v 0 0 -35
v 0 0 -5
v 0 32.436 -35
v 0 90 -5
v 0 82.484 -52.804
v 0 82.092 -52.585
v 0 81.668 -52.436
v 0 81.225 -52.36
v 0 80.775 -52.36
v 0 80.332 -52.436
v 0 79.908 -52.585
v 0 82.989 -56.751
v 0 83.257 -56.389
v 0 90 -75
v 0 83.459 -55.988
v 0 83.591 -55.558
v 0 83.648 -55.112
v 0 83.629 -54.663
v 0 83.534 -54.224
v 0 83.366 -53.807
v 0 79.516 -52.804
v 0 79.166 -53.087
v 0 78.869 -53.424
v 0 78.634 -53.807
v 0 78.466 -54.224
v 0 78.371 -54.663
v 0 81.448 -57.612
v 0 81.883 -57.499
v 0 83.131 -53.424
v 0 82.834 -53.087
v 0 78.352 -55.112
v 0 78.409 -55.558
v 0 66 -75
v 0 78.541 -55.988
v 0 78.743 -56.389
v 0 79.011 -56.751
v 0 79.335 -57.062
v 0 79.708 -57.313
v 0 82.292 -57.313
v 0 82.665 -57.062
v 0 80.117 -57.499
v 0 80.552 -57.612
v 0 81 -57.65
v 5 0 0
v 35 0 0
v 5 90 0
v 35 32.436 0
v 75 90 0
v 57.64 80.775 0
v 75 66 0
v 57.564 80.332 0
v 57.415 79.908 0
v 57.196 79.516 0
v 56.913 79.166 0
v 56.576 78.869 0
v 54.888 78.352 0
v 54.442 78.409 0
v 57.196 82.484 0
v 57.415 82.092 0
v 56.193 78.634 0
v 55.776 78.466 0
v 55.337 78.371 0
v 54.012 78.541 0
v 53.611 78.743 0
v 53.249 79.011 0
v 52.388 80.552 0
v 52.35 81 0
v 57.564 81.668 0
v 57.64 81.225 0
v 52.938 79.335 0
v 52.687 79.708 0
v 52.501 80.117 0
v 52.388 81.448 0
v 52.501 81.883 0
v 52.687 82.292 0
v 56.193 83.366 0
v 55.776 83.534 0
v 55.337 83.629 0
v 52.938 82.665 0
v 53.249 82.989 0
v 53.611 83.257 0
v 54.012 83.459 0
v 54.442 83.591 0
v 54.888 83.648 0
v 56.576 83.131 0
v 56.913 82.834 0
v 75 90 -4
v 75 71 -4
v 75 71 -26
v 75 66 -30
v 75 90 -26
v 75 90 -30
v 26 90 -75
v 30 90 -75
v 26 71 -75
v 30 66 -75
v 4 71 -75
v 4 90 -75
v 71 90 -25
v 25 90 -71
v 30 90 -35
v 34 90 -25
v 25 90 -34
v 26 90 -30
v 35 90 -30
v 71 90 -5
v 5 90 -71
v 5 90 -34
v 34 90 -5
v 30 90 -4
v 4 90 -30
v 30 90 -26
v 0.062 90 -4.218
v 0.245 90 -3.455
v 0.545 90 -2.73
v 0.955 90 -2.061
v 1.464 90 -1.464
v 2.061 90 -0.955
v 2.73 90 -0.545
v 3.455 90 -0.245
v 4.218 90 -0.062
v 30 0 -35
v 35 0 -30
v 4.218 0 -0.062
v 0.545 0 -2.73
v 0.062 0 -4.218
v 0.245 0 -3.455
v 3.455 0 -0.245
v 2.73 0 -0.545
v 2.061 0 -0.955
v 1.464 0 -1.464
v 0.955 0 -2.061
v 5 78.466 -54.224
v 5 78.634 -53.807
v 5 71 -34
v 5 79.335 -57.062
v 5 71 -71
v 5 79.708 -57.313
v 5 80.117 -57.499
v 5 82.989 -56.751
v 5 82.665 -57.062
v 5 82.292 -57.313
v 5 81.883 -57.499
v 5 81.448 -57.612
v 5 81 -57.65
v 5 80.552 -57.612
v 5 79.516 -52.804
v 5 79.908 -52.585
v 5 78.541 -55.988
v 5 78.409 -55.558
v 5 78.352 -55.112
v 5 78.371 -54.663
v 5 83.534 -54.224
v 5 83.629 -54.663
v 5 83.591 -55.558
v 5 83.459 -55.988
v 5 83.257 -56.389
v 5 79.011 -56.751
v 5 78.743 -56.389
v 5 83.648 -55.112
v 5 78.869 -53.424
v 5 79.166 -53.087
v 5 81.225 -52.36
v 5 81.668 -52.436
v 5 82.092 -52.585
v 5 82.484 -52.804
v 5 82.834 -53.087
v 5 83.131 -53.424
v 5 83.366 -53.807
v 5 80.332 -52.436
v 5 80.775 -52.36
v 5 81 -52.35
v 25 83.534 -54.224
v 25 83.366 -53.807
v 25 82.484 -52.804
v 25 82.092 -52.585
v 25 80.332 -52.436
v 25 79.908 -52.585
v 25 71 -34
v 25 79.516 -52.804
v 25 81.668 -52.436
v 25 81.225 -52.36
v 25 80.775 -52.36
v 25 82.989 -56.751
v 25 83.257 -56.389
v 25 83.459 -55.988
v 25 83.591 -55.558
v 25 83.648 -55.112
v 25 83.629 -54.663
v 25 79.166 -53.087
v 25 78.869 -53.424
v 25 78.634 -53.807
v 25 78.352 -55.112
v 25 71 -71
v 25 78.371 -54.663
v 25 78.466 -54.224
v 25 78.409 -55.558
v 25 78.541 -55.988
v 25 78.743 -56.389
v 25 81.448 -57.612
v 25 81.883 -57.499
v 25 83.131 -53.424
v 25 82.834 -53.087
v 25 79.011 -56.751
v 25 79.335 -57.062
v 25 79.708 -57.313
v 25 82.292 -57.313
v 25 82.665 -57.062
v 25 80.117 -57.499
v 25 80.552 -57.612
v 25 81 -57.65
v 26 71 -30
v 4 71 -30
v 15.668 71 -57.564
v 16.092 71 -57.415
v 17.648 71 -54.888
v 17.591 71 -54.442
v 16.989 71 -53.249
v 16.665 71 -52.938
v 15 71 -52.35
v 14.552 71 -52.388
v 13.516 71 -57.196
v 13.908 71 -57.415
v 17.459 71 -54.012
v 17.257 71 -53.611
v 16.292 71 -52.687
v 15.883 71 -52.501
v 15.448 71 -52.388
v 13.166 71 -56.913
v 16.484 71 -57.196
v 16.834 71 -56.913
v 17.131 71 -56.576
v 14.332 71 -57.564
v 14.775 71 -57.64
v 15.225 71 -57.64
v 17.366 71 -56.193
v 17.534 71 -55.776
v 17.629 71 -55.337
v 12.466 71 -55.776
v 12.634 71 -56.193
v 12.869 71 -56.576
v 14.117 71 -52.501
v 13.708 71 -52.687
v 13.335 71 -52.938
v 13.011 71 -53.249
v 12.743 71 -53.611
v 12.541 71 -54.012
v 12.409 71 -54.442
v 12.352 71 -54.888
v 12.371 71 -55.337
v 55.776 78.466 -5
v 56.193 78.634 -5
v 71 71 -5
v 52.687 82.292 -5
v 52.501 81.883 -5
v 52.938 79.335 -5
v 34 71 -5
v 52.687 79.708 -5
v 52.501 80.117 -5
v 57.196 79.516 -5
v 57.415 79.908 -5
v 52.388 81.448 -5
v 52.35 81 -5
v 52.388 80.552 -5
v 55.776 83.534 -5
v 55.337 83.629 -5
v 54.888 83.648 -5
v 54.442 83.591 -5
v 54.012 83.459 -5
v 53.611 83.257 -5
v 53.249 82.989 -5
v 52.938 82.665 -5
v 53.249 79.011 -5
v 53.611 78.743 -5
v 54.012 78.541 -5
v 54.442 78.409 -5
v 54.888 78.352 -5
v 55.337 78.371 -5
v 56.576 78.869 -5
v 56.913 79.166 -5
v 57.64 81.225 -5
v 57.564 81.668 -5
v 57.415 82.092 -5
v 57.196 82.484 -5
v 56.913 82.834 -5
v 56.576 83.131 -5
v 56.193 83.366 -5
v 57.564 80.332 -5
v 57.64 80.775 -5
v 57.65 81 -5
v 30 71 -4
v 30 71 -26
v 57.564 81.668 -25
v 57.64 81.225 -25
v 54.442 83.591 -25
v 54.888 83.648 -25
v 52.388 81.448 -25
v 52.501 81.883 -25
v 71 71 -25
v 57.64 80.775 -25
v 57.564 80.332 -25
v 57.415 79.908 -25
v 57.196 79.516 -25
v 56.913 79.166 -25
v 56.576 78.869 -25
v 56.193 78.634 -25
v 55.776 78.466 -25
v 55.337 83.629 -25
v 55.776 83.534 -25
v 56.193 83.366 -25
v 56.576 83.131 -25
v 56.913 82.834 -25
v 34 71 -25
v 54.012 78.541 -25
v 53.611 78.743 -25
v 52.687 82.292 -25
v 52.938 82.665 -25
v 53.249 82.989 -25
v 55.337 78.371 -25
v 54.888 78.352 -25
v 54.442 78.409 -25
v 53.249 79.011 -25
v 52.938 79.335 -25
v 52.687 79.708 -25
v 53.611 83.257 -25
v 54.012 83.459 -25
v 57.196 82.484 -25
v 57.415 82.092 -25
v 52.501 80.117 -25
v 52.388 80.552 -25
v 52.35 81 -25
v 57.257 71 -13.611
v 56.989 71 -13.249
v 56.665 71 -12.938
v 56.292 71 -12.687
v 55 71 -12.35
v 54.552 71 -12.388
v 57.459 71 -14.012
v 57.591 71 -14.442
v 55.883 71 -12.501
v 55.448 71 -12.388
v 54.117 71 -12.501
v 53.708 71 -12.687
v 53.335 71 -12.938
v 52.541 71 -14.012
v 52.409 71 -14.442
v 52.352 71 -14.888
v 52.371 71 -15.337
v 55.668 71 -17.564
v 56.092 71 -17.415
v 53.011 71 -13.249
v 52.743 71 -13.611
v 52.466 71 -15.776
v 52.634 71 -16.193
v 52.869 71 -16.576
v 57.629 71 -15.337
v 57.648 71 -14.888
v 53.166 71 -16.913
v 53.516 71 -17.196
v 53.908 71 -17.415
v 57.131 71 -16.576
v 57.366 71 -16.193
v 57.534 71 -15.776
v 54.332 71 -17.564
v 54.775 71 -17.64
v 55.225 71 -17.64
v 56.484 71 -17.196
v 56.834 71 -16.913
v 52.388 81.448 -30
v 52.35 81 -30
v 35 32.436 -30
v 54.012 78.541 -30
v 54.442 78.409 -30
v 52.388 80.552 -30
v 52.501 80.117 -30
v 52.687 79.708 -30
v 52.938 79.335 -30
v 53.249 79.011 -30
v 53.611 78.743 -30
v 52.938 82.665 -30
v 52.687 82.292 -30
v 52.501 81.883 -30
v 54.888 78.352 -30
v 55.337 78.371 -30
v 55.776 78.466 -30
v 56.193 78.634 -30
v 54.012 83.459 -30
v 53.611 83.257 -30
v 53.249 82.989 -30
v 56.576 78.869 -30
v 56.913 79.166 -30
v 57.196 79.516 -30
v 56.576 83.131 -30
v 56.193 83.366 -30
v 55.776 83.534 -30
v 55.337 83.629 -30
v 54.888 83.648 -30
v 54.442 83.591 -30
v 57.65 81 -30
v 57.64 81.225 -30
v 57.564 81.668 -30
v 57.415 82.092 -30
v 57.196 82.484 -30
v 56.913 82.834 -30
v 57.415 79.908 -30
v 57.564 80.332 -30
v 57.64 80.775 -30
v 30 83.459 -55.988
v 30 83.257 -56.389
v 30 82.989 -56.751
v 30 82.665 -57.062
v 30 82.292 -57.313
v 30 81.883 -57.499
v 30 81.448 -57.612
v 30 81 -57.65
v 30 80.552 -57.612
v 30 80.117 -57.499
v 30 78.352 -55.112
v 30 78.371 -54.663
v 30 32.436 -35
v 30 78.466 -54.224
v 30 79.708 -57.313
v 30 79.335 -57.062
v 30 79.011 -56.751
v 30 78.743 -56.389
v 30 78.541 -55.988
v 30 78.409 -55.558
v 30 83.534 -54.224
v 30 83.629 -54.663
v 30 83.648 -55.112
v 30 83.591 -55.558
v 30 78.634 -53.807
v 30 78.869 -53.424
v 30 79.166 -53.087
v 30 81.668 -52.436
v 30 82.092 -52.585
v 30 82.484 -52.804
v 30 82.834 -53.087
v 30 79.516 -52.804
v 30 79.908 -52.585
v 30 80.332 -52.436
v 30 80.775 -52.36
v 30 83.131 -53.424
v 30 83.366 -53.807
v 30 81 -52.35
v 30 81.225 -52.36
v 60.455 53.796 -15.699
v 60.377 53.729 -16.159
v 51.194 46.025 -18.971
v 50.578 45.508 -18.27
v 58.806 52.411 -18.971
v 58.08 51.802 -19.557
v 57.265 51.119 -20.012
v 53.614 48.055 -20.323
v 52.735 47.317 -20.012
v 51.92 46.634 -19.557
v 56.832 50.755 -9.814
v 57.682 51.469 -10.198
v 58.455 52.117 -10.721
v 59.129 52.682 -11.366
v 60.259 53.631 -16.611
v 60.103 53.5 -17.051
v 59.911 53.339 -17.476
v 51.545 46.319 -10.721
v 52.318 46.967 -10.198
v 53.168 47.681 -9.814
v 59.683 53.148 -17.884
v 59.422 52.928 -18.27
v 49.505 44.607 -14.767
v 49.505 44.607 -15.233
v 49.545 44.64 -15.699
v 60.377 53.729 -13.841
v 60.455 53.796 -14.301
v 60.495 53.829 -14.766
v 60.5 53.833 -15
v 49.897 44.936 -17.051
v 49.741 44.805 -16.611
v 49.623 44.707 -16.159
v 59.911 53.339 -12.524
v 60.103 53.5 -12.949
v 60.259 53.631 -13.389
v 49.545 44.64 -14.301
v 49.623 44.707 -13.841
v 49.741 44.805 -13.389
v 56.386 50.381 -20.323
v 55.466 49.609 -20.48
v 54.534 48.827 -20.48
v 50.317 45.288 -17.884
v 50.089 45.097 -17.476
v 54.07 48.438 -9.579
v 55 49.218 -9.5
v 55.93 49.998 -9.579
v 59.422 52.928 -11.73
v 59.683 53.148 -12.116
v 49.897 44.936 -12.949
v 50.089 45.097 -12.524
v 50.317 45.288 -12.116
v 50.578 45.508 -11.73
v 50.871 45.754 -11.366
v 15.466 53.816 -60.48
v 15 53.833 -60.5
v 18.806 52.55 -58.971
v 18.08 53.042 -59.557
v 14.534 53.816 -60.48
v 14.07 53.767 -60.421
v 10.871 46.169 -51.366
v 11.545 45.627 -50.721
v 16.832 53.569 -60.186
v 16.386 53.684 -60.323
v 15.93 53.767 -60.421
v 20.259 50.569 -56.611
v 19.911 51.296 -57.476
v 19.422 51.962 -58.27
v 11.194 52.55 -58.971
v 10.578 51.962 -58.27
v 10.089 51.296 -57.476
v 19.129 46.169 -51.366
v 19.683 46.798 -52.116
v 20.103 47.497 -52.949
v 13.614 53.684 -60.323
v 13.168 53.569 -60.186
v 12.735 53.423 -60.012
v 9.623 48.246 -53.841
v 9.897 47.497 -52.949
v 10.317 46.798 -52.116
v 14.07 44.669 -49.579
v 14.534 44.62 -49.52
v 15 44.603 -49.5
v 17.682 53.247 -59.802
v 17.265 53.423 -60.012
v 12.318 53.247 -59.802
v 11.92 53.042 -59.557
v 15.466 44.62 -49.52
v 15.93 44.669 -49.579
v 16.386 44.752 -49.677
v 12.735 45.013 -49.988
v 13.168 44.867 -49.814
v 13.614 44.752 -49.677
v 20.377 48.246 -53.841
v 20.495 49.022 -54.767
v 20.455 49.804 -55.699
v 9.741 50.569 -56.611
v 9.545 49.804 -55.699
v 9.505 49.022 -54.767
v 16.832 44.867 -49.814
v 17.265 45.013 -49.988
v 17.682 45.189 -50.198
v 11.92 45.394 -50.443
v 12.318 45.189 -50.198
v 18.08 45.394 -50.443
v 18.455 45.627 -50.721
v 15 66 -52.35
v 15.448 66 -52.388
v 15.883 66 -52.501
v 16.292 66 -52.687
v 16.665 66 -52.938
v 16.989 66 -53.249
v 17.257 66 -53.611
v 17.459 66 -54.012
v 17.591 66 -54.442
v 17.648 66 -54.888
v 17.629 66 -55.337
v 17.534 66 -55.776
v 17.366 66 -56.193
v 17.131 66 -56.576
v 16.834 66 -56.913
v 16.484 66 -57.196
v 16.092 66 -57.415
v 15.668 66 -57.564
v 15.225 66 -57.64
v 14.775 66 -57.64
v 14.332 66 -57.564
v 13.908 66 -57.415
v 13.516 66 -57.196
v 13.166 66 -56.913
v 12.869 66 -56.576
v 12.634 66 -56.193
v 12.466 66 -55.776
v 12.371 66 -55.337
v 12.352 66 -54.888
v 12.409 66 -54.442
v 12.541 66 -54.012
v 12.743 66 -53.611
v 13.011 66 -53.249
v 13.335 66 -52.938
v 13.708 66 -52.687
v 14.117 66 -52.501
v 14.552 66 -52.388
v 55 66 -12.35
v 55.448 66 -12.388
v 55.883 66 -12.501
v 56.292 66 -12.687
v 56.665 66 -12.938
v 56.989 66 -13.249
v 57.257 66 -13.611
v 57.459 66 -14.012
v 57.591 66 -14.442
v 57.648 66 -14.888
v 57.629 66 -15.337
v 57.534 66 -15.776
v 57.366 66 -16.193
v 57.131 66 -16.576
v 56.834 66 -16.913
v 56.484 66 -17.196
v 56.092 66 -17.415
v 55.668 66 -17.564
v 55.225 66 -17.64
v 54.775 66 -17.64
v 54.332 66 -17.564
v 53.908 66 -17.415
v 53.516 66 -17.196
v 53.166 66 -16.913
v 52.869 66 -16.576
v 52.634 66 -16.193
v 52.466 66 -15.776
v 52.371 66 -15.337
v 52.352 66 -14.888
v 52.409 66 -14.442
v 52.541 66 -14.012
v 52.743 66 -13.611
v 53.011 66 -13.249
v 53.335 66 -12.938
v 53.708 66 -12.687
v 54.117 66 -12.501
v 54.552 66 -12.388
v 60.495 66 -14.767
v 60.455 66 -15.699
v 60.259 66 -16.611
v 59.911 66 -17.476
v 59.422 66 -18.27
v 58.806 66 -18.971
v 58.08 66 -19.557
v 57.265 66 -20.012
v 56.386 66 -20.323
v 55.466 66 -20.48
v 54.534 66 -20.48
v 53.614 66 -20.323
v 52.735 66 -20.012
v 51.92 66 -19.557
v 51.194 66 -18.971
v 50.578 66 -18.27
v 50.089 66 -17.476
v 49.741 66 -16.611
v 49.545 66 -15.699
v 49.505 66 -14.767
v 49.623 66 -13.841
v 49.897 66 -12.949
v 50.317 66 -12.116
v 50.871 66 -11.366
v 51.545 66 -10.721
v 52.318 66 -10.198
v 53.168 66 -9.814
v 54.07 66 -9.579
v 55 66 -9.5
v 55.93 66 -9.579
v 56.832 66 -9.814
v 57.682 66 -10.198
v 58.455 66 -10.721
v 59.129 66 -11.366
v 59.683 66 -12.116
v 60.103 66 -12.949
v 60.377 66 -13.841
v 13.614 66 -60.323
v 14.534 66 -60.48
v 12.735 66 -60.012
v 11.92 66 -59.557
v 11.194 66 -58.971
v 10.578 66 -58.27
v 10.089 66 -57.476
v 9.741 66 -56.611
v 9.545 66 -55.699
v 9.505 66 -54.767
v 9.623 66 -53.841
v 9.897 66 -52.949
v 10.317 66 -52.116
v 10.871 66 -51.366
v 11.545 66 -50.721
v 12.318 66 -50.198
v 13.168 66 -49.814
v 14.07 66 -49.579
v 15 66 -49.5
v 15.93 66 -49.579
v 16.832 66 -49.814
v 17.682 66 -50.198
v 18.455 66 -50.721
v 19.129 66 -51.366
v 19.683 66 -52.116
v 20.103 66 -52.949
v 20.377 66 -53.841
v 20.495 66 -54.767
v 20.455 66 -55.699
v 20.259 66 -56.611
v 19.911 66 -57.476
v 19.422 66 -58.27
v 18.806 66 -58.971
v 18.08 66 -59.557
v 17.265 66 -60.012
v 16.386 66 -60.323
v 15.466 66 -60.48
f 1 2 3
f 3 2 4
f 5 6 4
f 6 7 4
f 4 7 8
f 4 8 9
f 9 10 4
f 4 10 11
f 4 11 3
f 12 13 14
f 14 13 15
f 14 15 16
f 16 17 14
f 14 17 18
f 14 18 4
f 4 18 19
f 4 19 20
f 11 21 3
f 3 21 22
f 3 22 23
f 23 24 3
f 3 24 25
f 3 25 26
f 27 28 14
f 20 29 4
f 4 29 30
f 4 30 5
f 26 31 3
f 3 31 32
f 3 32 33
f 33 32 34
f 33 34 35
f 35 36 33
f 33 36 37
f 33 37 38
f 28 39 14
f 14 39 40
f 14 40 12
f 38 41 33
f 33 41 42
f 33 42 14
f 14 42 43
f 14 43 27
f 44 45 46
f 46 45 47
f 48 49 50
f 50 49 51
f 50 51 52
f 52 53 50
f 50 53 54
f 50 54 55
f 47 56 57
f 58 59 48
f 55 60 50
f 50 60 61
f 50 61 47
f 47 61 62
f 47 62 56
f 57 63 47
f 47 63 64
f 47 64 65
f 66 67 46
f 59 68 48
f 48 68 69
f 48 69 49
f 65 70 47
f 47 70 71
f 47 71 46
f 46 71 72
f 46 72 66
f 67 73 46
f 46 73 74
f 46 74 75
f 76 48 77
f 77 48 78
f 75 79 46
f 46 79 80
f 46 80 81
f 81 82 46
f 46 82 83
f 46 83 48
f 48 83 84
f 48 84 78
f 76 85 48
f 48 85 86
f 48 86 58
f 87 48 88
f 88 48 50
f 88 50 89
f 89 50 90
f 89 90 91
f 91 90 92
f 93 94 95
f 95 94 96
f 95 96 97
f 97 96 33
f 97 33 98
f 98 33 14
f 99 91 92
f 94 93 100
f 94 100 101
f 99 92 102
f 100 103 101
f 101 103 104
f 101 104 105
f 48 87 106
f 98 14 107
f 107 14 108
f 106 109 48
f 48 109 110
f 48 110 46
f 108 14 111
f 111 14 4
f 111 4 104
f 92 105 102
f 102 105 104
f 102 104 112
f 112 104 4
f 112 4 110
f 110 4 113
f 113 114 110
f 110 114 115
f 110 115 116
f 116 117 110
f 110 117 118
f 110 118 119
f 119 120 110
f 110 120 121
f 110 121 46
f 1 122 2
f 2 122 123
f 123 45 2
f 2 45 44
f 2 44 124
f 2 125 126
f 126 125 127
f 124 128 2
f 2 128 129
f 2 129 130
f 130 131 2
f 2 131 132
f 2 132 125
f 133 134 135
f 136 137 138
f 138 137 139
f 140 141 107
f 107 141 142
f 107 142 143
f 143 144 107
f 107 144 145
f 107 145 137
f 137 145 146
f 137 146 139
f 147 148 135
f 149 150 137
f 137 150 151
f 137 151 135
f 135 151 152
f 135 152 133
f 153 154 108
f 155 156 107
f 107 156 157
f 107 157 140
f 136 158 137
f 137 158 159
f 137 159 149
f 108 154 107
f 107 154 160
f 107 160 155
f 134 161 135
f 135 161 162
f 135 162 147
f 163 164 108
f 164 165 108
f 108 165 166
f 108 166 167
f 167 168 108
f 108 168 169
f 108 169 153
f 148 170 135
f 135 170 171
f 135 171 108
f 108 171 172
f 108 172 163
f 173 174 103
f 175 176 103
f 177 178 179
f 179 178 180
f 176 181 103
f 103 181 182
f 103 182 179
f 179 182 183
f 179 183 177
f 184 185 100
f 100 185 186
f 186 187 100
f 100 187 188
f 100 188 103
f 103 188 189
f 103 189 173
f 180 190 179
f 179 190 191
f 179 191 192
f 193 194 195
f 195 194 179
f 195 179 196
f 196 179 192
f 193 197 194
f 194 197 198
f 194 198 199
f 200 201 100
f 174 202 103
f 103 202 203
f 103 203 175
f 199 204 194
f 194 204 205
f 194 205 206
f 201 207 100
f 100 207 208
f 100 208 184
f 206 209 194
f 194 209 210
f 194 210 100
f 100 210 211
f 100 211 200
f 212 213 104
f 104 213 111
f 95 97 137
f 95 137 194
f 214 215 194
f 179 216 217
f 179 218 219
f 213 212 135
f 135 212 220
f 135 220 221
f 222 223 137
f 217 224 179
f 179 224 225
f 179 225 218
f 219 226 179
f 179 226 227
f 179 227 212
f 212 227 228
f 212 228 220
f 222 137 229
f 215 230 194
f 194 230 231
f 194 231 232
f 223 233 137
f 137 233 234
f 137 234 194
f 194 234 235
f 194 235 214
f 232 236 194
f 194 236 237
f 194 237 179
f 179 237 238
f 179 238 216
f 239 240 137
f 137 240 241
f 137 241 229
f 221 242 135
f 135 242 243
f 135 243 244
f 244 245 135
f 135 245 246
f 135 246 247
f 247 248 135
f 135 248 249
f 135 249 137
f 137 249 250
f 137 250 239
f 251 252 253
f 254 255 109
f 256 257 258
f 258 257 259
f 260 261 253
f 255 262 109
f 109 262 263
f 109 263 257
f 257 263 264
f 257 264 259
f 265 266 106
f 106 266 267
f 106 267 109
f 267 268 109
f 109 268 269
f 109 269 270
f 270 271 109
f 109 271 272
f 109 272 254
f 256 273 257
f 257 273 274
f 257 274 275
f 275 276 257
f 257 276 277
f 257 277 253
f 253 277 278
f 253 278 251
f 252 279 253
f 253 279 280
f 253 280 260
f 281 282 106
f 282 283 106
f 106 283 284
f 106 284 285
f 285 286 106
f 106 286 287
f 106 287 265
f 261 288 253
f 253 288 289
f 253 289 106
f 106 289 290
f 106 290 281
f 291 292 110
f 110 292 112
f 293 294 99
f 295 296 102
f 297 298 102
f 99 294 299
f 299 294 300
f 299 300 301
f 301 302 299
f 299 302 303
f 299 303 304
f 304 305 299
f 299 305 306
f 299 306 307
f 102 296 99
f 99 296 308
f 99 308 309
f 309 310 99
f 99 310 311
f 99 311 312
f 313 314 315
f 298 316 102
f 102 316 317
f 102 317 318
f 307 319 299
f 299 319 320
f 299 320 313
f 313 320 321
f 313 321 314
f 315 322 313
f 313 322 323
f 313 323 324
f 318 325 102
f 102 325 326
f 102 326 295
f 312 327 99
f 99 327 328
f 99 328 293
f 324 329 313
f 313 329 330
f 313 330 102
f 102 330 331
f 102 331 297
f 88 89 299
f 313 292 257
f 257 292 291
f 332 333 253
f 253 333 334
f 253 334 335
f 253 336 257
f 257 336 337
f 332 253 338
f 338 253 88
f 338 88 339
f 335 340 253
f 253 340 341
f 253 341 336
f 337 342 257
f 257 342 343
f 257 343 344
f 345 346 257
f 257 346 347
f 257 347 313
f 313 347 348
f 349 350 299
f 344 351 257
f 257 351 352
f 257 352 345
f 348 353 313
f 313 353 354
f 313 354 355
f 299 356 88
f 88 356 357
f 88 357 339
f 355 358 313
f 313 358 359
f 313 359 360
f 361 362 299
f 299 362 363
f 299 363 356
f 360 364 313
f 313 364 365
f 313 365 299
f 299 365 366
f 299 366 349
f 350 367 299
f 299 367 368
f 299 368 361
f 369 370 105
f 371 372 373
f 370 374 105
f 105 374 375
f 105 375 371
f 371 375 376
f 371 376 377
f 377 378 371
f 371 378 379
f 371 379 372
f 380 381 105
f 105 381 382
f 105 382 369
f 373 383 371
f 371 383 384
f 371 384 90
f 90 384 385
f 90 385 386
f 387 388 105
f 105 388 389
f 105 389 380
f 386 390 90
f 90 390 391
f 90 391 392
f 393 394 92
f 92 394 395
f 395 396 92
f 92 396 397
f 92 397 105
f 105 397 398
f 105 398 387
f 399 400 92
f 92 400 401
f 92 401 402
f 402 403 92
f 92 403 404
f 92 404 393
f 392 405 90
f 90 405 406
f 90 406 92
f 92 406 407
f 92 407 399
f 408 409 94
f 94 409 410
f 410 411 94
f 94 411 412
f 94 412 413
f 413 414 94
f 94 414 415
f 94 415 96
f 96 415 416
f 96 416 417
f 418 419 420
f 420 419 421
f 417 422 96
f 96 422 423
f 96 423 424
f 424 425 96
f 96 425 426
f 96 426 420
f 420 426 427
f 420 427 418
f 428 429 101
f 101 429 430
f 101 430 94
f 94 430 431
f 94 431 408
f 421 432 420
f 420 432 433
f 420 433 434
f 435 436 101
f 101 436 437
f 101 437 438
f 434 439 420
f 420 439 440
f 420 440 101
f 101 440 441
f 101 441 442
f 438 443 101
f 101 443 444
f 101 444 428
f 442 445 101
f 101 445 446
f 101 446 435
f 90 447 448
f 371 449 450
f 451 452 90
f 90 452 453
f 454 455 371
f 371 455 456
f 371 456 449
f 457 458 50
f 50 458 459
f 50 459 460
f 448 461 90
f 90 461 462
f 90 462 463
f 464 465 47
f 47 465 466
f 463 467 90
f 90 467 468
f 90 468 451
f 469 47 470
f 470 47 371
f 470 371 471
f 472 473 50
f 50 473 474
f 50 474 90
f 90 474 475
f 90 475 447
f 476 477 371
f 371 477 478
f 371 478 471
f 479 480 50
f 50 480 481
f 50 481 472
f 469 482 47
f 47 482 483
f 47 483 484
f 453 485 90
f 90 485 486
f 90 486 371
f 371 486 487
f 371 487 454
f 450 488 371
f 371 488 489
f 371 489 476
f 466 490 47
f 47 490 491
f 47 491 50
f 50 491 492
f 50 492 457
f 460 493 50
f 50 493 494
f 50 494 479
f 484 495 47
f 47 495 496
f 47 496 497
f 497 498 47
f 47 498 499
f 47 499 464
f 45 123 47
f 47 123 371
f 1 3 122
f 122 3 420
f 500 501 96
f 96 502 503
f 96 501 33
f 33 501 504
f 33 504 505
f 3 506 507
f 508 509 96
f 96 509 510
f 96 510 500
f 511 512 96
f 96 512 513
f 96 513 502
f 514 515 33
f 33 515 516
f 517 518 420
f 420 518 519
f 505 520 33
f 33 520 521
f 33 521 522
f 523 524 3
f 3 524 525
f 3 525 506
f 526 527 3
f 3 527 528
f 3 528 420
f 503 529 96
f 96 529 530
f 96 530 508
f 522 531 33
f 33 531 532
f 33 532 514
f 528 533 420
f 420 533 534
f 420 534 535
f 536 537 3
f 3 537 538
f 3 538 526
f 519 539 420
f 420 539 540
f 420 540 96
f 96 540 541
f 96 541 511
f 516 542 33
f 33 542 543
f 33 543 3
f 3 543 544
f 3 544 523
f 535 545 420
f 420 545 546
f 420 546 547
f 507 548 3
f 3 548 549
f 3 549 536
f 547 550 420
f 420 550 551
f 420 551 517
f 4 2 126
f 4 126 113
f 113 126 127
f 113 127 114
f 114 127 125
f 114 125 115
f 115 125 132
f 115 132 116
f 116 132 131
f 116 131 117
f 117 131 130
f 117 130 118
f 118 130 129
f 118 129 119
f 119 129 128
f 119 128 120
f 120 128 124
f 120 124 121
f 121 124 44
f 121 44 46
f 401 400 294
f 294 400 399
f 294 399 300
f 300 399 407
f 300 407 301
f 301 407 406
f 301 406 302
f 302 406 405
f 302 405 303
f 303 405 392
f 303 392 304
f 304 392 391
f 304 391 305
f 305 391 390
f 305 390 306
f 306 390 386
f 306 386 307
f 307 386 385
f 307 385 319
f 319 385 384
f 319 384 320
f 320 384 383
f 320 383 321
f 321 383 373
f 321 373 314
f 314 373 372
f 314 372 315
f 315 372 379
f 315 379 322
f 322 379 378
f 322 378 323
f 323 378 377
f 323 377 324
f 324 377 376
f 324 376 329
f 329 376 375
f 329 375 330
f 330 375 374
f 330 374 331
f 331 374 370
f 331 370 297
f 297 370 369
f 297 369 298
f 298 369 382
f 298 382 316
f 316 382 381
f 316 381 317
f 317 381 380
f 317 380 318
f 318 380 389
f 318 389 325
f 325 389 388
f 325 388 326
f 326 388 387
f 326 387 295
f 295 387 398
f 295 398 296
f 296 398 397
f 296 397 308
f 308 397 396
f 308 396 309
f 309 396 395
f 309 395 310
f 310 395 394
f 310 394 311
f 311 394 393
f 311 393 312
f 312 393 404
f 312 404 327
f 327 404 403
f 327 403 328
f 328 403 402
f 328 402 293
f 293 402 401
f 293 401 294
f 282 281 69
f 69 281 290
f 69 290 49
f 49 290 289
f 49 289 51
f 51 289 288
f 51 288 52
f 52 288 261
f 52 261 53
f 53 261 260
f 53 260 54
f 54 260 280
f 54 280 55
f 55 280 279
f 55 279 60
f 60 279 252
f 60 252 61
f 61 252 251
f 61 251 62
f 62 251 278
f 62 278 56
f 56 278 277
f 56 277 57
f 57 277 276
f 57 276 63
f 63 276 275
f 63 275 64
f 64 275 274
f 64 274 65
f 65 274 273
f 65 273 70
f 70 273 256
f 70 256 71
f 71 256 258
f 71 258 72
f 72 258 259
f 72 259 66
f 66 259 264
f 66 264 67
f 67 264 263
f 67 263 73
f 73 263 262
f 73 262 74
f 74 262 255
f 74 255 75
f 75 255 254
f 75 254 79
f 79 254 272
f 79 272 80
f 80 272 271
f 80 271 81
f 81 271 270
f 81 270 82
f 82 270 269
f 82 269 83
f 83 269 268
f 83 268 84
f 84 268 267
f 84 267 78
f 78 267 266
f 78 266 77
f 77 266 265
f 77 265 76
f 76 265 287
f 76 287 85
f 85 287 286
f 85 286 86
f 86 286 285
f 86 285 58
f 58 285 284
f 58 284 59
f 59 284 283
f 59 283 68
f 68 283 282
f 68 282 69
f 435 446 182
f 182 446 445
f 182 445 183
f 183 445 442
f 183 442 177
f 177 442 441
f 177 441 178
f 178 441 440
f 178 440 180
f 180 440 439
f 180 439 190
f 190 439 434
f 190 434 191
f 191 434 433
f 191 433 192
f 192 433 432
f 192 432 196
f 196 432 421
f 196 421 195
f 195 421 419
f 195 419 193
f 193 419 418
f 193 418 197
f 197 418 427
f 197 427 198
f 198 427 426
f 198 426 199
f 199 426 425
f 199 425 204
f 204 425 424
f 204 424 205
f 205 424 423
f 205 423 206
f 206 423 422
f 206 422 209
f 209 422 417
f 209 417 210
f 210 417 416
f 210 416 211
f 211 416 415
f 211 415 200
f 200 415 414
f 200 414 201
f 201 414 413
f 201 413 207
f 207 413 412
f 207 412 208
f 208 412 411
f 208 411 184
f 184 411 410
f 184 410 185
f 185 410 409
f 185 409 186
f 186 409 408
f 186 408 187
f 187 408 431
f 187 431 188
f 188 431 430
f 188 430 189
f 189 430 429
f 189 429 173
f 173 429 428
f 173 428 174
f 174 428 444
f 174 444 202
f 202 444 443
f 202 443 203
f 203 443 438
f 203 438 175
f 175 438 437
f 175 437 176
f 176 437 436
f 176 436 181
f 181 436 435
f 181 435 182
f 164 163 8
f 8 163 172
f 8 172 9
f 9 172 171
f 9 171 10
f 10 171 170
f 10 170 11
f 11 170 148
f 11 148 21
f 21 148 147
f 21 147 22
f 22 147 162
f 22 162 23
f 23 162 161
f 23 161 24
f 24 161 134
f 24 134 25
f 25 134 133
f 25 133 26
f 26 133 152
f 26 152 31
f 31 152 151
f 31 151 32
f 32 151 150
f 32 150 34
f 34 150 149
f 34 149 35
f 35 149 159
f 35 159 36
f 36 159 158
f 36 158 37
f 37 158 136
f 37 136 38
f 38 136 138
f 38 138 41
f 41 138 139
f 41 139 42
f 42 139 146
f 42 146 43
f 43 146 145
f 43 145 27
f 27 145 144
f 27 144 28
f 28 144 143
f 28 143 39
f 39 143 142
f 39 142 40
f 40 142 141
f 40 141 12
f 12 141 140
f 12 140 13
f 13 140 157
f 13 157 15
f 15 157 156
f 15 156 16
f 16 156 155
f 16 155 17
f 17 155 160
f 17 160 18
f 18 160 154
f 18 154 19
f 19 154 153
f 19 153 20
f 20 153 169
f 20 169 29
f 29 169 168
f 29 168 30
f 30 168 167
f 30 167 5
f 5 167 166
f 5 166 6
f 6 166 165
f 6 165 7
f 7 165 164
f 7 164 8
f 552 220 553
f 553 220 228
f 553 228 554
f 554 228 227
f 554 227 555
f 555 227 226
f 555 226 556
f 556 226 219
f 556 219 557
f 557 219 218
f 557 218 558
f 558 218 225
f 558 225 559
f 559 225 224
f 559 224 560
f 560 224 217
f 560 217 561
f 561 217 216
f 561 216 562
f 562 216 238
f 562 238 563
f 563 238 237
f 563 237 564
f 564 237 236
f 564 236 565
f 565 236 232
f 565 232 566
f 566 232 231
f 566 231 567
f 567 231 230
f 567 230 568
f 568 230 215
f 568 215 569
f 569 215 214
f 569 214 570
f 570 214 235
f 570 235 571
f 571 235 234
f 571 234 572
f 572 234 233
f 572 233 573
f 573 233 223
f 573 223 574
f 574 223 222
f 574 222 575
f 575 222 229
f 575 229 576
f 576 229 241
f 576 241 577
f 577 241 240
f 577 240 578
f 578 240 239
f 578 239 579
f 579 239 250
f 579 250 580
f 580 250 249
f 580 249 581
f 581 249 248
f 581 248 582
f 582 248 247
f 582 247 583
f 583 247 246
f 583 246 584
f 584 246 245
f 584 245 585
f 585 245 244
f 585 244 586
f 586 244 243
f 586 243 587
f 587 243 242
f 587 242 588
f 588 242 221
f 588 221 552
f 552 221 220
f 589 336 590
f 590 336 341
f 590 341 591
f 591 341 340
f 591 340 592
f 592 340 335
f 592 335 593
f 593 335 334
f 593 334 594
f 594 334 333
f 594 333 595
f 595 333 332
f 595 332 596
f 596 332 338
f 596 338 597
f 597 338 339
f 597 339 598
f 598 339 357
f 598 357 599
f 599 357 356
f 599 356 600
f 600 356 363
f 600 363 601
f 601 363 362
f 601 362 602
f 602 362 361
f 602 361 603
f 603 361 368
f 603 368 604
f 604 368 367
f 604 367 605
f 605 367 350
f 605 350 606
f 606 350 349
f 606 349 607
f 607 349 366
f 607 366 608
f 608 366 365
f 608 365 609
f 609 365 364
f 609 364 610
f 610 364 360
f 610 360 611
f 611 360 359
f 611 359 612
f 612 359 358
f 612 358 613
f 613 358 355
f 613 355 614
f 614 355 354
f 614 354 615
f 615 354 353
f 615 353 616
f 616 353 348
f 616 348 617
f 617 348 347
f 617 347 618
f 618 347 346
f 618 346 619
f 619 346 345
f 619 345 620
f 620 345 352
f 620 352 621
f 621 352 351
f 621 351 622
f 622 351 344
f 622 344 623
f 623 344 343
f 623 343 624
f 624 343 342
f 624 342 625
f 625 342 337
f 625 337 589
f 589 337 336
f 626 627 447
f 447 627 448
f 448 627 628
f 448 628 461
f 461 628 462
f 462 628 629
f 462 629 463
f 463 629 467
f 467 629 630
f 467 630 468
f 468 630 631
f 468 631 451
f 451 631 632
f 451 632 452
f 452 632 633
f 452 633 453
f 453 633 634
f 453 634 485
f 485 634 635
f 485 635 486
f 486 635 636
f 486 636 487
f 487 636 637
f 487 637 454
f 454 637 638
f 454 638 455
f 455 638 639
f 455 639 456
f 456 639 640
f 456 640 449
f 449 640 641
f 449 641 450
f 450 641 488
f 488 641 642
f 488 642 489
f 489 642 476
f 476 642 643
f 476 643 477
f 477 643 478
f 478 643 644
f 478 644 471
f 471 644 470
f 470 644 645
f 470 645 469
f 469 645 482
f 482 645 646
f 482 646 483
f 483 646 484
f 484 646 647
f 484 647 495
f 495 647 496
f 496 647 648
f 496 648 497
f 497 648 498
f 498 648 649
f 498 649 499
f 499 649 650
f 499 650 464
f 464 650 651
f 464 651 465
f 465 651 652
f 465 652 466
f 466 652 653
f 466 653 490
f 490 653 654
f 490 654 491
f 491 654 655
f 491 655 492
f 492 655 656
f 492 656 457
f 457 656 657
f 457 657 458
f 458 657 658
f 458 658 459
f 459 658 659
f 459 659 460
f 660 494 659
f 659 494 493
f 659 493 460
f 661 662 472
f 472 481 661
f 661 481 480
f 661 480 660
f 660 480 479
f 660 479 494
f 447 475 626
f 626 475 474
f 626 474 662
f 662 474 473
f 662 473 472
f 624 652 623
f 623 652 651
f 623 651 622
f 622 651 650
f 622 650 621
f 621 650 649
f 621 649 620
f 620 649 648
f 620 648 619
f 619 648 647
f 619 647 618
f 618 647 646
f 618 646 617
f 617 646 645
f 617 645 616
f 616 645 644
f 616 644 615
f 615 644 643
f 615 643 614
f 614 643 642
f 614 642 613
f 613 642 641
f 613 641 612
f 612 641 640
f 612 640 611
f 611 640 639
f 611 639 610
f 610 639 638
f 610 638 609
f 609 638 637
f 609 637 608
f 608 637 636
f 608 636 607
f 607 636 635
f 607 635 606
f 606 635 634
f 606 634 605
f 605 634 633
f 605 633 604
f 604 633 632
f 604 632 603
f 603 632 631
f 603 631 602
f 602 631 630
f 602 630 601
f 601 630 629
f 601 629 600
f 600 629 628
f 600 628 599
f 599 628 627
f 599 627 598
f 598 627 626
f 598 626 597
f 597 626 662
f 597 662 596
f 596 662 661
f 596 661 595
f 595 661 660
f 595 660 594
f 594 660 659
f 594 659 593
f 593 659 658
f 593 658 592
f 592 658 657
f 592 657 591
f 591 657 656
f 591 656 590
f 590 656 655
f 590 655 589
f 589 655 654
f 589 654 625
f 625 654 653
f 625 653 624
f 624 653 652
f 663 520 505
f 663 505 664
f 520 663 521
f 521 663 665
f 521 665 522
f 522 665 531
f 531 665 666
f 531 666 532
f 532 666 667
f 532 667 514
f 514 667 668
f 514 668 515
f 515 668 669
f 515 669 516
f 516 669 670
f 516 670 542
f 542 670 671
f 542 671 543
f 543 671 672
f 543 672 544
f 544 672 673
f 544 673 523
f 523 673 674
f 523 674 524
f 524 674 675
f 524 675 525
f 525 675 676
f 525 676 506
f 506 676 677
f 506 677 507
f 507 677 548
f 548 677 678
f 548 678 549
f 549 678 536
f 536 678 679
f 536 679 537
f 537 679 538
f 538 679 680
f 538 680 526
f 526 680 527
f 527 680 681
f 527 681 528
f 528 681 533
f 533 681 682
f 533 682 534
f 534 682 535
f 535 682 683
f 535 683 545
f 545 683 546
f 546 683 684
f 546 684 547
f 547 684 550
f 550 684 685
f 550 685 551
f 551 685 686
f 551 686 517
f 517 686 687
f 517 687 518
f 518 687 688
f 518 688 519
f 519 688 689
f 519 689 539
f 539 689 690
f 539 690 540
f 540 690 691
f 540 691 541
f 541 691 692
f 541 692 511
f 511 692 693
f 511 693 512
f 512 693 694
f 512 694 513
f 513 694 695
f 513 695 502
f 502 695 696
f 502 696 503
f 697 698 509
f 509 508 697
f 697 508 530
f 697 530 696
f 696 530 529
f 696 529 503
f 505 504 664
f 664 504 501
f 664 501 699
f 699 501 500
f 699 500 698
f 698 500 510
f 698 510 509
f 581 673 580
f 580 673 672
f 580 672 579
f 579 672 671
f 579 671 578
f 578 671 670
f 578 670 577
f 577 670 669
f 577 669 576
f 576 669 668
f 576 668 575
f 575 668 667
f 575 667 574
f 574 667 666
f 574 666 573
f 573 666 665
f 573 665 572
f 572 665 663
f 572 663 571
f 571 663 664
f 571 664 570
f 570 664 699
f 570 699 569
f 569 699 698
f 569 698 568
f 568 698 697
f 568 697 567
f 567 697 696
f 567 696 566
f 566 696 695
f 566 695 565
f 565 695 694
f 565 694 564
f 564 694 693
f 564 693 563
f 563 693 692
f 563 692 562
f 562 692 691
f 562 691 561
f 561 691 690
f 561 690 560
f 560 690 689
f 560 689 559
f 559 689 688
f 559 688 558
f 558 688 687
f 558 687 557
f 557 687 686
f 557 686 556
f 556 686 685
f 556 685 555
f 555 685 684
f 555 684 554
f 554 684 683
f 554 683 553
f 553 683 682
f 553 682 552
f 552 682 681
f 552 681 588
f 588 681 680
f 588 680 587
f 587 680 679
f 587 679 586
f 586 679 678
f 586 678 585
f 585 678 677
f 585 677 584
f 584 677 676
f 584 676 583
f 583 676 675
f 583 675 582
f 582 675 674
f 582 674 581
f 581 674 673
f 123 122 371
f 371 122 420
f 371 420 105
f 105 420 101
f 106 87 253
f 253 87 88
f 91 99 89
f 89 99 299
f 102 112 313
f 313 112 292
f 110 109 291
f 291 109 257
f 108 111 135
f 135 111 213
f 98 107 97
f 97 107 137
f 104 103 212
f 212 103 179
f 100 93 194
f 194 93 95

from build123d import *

# Parameters (mm, degrees)
SKETCH1_W                = 75
SKETCH1_H                = 75
BOSS_EXTRUDE1_DEPTH      = 90
SKETCH2_W                = 45
SKETCH2_H                = 20
SKETCH2_W_2              = 20
SKETCH2_H_2              = 45
CUT_EXTRUDE2_DEPTH       = 19
SKETCH3_W                = 45
SKETCH3_H                = 45
CUT_EXTRUDE3_DEPTH       = 140.104277432
CUT_EXTRUDE4_DEPTH       = 140.104277432
CUT_EXTRUDE5_DEPTH       = 126.49900398
FILLET1_R                = 5
CUT_EXTRUDE10_DEPTH      = 126.49900398
CUT_EXTRUDE10_DEPTH_BACK = 126.49900398
SKETCH7_R                = 2.65
CUT_EXTRUDE11_DEPTH      = 126.49900398
CUT_EXTRUDE11_DEPTH_BACK = 126.49900398
SKETCH8_R                = 2.65
SKETCH9_R                = 2.65
CUT_EXTRUDE12_DEPTH      = 128.636201761
SKETCH10_R               = 5.5
CUT_EXTRUDE13_DEPTH      = 125.923976882
CHAMFER3_SIZE            = 5
CUT_EXTRUDE14_DEPTH      = 19


with BuildPart() as part:
    # Sketch1 → Boss-Extrude1 (new body)
    with BuildSketch(Plane(origin=(0, 0, 0), x_dir=(1, 0, 0), z_dir=(0, 1, 0))):
        with Locations((37.5, 37.5)):
            Rectangle(SKETCH1_W, SKETCH1_H)
    extrude(amount=BOSS_EXTRUDE1_DEPTH)

    # Sketch2 → Cut-Extrude2 (cut)
    with BuildSketch(Plane(origin=(0, 90, 0), x_dir=(1, 0, 0), z_dir=(0, 1, 0))):
        with Locations((52.5, 15)):
            Rectangle(SKETCH2_W, SKETCH2_H)
        with Locations((15, 52.5)):
            Rectangle(SKETCH2_W_2, SKETCH2_H_2)
    extrude(amount=-CUT_EXTRUDE2_DEPTH, mode=Mode.SUBTRACT)

    # Sketch3 → Cut-Extrude3 (cut, through all)
    with BuildSketch(Plane(origin=(0, 90, 0), x_dir=(1, 0, 0), z_dir=(0, 1, 0))):
        with Locations((52.5, 52.5)):
            Rectangle(SKETCH3_W, SKETCH3_H)
    extrude(amount=-CUT_EXTRUDE3_DEPTH, mode=Mode.SUBTRACT)

    # Sketch4 → Cut-Extrude4 (cut, through all)
    with BuildSketch(Plane.XY):
        Polygon((35, 32.436014753), (35, 0), (75, 0), (75, 66), align=None)
    extrude(amount=-CUT_EXTRUDE4_DEPTH, mode=Mode.SUBTRACT)

    # Sketch5 → Cut-Extrude5 (cut, through all)
    with BuildSketch(Plane(origin=(30, 0, 0), x_dir=(0, 0, -1), z_dir=(1, 0, 0))):
        Polygon((35, 0), (35, 32.436014753), (75, 66), (75, 0), align=None)
    extrude(amount=-CUT_EXTRUDE5_DEPTH, mode=Mode.SUBTRACT)

    # Fillet1
    fillet1_edges = [part.edges().sort_by_distance(p)[0] for p in [
        (0, 45, 0),
    ]]
    fillet(fillet1_edges, radius=FILLET1_R)

    # Sketch7 → Cut-Extrude10 (cut, two sides: drawn at the far end of the back side and taken through both)
    with BuildSketch(Plane(origin=(0, 0, -30), x_dir=(-1, 0, 0), z_dir=(0, 0, -1)).offset(-CUT_EXTRUDE10_DEPTH_BACK)):
        with Locations((-55, 81)):
            Circle(SKETCH7_R)
    extrude(amount=CUT_EXTRUDE10_DEPTH + CUT_EXTRUDE10_DEPTH_BACK, mode=Mode.SUBTRACT)

    # Sketch8 → Cut-Extrude11 (cut, two sides: drawn at the far end of the back side and taken through both)
    with BuildSketch(Plane(origin=(30, 0, 0), x_dir=(0, 0, -1), z_dir=(1, 0, 0)).offset(-CUT_EXTRUDE11_DEPTH_BACK)):
        with Locations((55, 81)):
            Circle(SKETCH8_R)
    extrude(amount=CUT_EXTRUDE11_DEPTH + CUT_EXTRUDE11_DEPTH_BACK, mode=Mode.SUBTRACT)

    # Sketch9 → Cut-Extrude12 (cut, through all)
    with BuildSketch(Plane(origin=(0, 71, 0), x_dir=(1, 0, 0), z_dir=(0, 1, 0))):
        with Locations(Location((15, 55, 0), (0, 0, 270))):
            Circle(SKETCH9_R)
        with Locations(Location((55, 15, 0), (0, 0, 270))):
            Circle(SKETCH9_R)
    extrude(amount=-CUT_EXTRUDE12_DEPTH, mode=Mode.SUBTRACT)

    # Sketch10 → Cut-Extrude13 (cut, through all)
    with BuildSketch(Plane(origin=(0, 66, 0), x_dir=(1, 0, 0), z_dir=(0, 1, 0))):
        with Locations(Location((55, 15, 0), (0, 0, 270))):
            Circle(SKETCH10_R)
        with Locations(Location((15, 55, 0), (0, 0, 270))):
            Circle(SKETCH10_R)
    extrude(amount=-CUT_EXTRUDE13_DEPTH, mode=Mode.SUBTRACT)

    # Chamfer3
    chamfer3_edges = [part.edges().sort_by_distance(p)[0] for p in [
        (30, 45, -30),
    ]]
    chamfer(chamfer3_edges, length=CHAMFER3_SIZE - 0.0001)  # a hair under: the kernel refuses the full size

    # Sketch11 → Cut-Extrude14 (cut)
    with BuildSketch(Plane(origin=(0, 90, 0), x_dir=(1, 0, 0), z_dir=(0, 1, 0))):
        Polygon((5, 30), (4, 30), (5, 34), align=None)
        Polygon((25, 30), (26, 30), (25, 34), align=None)
        Polygon((30, 25), (34, 25), (30, 26), align=None)
        Polygon((30, 5), (30, 4), (34, 5), align=None)
        Polygon((25, 75), (26, 75), (25, 71), align=None)
        Polygon((5, 71), (5, 75), (4, 75), align=None)
        Polygon((75, 5), (71, 5), (75, 4), align=None)
        Polygon((71, 25), (75, 25), (75, 26), align=None)
    extrude(amount=-CUT_EXTRUDE14_DEPTH, mode=Mode.SUBTRACT)


solid = part.part
